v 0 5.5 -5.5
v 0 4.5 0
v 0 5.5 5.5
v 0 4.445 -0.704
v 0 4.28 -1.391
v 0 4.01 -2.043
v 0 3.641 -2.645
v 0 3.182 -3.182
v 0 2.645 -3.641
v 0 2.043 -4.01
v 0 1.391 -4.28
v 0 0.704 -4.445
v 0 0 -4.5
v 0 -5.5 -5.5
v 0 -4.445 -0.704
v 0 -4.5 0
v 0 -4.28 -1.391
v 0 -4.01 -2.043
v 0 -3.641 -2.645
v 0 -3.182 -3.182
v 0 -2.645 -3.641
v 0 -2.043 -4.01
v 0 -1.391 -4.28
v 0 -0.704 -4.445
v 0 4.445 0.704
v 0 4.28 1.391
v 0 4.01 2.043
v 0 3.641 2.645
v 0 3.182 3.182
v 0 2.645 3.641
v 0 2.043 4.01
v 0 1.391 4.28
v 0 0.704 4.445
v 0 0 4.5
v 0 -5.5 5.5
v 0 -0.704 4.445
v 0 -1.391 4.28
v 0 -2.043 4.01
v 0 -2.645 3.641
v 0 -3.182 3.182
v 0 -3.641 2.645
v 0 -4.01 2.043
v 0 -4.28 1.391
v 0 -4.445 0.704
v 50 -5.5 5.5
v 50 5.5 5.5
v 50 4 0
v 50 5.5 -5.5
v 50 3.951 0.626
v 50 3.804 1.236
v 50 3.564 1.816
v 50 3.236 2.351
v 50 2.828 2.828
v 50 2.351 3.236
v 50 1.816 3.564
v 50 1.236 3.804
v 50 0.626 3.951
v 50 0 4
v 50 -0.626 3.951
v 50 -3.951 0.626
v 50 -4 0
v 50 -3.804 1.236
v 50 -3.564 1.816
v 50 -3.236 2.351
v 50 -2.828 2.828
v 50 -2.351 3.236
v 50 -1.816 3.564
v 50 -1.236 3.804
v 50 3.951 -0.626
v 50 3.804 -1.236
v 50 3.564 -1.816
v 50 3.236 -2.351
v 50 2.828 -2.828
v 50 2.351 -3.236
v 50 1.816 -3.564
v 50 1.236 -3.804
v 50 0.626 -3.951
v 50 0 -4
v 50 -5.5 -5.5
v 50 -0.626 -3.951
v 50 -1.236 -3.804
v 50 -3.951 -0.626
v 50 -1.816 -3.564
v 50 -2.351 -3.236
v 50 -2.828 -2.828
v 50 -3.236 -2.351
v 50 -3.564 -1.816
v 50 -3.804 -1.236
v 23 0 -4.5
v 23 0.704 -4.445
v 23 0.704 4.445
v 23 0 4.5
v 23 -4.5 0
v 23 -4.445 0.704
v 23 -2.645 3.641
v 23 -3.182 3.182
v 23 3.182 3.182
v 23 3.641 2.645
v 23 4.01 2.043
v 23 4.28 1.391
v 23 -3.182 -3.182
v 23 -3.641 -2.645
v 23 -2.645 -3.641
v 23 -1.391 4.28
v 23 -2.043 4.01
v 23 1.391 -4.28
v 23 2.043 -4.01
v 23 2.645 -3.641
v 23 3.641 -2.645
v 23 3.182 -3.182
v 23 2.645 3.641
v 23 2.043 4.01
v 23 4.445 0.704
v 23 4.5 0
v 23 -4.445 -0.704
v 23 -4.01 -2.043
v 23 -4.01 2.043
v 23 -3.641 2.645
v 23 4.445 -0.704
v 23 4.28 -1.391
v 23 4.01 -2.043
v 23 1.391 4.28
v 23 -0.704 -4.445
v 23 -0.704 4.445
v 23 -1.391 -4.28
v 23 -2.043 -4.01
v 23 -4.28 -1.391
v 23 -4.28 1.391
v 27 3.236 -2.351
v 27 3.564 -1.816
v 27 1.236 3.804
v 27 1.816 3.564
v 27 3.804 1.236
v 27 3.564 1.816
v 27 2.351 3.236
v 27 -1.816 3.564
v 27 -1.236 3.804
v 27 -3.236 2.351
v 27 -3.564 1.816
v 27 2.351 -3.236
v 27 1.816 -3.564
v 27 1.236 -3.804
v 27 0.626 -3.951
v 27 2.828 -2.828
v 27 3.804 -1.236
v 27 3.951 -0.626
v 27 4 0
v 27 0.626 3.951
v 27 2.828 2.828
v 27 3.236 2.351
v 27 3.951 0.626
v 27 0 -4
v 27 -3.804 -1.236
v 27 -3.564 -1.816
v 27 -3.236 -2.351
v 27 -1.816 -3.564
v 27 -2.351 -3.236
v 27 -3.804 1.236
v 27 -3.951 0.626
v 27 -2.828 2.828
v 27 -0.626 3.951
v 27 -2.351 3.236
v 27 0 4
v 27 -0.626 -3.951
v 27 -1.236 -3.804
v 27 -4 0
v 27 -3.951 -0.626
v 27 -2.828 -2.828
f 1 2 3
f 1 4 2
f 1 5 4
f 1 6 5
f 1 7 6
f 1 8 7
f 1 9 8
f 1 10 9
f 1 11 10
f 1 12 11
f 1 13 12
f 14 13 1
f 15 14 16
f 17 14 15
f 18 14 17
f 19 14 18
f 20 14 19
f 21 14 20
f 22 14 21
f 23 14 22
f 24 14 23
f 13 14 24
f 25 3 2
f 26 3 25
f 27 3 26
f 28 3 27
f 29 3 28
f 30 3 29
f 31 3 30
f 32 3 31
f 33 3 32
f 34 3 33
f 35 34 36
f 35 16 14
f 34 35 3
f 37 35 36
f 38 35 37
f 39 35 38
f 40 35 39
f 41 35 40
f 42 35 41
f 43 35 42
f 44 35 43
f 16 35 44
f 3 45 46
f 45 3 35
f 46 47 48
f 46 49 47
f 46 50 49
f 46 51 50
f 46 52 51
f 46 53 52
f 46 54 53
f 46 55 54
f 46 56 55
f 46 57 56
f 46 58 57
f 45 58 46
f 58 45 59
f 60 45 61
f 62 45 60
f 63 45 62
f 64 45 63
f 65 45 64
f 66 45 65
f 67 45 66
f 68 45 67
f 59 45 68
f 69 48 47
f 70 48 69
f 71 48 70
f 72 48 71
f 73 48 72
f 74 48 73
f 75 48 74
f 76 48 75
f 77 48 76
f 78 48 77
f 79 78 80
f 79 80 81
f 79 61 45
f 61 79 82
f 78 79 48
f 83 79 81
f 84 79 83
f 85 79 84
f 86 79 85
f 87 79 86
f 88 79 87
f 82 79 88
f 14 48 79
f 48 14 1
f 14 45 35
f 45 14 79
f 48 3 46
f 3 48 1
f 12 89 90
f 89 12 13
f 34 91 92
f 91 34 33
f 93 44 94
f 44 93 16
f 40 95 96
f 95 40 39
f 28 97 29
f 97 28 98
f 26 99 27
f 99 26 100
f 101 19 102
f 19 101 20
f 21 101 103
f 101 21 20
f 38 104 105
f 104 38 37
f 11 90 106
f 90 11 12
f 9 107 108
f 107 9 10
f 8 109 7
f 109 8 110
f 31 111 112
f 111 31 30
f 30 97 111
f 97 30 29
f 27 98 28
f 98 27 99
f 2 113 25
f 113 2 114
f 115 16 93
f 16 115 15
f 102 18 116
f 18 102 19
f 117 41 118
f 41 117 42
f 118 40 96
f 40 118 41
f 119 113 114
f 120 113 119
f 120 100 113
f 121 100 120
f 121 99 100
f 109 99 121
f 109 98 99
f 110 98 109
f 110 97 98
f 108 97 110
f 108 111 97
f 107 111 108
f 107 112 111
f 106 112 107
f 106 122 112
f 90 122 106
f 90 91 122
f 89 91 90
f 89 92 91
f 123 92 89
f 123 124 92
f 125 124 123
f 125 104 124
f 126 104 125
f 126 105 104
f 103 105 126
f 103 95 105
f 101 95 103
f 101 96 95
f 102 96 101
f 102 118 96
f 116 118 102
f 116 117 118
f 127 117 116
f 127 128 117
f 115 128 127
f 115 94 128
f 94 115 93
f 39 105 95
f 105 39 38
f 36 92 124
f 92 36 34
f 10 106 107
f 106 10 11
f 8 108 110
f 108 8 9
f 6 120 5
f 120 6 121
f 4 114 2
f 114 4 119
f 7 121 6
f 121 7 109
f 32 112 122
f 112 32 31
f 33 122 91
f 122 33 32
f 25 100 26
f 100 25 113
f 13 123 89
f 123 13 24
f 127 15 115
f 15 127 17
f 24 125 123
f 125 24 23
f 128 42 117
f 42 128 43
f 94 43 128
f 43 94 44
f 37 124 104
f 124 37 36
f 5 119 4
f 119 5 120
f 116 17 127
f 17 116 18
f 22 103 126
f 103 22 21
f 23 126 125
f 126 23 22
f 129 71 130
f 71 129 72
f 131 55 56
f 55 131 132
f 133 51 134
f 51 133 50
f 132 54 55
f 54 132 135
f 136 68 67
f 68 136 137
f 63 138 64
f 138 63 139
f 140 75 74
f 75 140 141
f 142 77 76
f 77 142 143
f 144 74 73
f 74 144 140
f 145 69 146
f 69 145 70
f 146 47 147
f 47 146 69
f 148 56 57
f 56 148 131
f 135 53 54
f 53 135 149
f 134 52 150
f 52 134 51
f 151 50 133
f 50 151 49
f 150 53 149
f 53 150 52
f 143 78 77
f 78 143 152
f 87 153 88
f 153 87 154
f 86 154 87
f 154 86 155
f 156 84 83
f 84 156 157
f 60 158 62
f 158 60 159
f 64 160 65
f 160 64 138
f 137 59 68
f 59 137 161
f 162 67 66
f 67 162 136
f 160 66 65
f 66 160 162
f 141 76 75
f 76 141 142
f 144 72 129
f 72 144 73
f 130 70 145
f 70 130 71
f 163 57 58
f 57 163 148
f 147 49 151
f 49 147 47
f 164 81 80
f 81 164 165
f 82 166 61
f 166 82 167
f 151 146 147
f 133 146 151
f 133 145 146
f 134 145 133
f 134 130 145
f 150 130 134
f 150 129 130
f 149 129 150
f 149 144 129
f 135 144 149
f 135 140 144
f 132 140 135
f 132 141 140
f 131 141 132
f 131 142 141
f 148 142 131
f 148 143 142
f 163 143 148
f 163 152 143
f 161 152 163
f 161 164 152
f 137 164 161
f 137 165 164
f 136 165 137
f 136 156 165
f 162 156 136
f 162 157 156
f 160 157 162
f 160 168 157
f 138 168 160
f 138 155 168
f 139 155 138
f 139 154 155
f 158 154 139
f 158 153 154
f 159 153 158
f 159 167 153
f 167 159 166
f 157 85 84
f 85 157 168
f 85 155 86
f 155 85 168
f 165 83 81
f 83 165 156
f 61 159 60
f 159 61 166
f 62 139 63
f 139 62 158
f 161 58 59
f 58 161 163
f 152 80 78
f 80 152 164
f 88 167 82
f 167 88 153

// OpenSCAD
difference(){
translate([0,-11/2,-11/2])cube([50,11,11]);
translate([-1,0,0])rotate([0,90,0])cylinder(r=4.5,h=24,$fn=40);
translate([27,0,0])rotate([0,90,0])cylinder(r=8/2,h=27,$fn=40);
}
